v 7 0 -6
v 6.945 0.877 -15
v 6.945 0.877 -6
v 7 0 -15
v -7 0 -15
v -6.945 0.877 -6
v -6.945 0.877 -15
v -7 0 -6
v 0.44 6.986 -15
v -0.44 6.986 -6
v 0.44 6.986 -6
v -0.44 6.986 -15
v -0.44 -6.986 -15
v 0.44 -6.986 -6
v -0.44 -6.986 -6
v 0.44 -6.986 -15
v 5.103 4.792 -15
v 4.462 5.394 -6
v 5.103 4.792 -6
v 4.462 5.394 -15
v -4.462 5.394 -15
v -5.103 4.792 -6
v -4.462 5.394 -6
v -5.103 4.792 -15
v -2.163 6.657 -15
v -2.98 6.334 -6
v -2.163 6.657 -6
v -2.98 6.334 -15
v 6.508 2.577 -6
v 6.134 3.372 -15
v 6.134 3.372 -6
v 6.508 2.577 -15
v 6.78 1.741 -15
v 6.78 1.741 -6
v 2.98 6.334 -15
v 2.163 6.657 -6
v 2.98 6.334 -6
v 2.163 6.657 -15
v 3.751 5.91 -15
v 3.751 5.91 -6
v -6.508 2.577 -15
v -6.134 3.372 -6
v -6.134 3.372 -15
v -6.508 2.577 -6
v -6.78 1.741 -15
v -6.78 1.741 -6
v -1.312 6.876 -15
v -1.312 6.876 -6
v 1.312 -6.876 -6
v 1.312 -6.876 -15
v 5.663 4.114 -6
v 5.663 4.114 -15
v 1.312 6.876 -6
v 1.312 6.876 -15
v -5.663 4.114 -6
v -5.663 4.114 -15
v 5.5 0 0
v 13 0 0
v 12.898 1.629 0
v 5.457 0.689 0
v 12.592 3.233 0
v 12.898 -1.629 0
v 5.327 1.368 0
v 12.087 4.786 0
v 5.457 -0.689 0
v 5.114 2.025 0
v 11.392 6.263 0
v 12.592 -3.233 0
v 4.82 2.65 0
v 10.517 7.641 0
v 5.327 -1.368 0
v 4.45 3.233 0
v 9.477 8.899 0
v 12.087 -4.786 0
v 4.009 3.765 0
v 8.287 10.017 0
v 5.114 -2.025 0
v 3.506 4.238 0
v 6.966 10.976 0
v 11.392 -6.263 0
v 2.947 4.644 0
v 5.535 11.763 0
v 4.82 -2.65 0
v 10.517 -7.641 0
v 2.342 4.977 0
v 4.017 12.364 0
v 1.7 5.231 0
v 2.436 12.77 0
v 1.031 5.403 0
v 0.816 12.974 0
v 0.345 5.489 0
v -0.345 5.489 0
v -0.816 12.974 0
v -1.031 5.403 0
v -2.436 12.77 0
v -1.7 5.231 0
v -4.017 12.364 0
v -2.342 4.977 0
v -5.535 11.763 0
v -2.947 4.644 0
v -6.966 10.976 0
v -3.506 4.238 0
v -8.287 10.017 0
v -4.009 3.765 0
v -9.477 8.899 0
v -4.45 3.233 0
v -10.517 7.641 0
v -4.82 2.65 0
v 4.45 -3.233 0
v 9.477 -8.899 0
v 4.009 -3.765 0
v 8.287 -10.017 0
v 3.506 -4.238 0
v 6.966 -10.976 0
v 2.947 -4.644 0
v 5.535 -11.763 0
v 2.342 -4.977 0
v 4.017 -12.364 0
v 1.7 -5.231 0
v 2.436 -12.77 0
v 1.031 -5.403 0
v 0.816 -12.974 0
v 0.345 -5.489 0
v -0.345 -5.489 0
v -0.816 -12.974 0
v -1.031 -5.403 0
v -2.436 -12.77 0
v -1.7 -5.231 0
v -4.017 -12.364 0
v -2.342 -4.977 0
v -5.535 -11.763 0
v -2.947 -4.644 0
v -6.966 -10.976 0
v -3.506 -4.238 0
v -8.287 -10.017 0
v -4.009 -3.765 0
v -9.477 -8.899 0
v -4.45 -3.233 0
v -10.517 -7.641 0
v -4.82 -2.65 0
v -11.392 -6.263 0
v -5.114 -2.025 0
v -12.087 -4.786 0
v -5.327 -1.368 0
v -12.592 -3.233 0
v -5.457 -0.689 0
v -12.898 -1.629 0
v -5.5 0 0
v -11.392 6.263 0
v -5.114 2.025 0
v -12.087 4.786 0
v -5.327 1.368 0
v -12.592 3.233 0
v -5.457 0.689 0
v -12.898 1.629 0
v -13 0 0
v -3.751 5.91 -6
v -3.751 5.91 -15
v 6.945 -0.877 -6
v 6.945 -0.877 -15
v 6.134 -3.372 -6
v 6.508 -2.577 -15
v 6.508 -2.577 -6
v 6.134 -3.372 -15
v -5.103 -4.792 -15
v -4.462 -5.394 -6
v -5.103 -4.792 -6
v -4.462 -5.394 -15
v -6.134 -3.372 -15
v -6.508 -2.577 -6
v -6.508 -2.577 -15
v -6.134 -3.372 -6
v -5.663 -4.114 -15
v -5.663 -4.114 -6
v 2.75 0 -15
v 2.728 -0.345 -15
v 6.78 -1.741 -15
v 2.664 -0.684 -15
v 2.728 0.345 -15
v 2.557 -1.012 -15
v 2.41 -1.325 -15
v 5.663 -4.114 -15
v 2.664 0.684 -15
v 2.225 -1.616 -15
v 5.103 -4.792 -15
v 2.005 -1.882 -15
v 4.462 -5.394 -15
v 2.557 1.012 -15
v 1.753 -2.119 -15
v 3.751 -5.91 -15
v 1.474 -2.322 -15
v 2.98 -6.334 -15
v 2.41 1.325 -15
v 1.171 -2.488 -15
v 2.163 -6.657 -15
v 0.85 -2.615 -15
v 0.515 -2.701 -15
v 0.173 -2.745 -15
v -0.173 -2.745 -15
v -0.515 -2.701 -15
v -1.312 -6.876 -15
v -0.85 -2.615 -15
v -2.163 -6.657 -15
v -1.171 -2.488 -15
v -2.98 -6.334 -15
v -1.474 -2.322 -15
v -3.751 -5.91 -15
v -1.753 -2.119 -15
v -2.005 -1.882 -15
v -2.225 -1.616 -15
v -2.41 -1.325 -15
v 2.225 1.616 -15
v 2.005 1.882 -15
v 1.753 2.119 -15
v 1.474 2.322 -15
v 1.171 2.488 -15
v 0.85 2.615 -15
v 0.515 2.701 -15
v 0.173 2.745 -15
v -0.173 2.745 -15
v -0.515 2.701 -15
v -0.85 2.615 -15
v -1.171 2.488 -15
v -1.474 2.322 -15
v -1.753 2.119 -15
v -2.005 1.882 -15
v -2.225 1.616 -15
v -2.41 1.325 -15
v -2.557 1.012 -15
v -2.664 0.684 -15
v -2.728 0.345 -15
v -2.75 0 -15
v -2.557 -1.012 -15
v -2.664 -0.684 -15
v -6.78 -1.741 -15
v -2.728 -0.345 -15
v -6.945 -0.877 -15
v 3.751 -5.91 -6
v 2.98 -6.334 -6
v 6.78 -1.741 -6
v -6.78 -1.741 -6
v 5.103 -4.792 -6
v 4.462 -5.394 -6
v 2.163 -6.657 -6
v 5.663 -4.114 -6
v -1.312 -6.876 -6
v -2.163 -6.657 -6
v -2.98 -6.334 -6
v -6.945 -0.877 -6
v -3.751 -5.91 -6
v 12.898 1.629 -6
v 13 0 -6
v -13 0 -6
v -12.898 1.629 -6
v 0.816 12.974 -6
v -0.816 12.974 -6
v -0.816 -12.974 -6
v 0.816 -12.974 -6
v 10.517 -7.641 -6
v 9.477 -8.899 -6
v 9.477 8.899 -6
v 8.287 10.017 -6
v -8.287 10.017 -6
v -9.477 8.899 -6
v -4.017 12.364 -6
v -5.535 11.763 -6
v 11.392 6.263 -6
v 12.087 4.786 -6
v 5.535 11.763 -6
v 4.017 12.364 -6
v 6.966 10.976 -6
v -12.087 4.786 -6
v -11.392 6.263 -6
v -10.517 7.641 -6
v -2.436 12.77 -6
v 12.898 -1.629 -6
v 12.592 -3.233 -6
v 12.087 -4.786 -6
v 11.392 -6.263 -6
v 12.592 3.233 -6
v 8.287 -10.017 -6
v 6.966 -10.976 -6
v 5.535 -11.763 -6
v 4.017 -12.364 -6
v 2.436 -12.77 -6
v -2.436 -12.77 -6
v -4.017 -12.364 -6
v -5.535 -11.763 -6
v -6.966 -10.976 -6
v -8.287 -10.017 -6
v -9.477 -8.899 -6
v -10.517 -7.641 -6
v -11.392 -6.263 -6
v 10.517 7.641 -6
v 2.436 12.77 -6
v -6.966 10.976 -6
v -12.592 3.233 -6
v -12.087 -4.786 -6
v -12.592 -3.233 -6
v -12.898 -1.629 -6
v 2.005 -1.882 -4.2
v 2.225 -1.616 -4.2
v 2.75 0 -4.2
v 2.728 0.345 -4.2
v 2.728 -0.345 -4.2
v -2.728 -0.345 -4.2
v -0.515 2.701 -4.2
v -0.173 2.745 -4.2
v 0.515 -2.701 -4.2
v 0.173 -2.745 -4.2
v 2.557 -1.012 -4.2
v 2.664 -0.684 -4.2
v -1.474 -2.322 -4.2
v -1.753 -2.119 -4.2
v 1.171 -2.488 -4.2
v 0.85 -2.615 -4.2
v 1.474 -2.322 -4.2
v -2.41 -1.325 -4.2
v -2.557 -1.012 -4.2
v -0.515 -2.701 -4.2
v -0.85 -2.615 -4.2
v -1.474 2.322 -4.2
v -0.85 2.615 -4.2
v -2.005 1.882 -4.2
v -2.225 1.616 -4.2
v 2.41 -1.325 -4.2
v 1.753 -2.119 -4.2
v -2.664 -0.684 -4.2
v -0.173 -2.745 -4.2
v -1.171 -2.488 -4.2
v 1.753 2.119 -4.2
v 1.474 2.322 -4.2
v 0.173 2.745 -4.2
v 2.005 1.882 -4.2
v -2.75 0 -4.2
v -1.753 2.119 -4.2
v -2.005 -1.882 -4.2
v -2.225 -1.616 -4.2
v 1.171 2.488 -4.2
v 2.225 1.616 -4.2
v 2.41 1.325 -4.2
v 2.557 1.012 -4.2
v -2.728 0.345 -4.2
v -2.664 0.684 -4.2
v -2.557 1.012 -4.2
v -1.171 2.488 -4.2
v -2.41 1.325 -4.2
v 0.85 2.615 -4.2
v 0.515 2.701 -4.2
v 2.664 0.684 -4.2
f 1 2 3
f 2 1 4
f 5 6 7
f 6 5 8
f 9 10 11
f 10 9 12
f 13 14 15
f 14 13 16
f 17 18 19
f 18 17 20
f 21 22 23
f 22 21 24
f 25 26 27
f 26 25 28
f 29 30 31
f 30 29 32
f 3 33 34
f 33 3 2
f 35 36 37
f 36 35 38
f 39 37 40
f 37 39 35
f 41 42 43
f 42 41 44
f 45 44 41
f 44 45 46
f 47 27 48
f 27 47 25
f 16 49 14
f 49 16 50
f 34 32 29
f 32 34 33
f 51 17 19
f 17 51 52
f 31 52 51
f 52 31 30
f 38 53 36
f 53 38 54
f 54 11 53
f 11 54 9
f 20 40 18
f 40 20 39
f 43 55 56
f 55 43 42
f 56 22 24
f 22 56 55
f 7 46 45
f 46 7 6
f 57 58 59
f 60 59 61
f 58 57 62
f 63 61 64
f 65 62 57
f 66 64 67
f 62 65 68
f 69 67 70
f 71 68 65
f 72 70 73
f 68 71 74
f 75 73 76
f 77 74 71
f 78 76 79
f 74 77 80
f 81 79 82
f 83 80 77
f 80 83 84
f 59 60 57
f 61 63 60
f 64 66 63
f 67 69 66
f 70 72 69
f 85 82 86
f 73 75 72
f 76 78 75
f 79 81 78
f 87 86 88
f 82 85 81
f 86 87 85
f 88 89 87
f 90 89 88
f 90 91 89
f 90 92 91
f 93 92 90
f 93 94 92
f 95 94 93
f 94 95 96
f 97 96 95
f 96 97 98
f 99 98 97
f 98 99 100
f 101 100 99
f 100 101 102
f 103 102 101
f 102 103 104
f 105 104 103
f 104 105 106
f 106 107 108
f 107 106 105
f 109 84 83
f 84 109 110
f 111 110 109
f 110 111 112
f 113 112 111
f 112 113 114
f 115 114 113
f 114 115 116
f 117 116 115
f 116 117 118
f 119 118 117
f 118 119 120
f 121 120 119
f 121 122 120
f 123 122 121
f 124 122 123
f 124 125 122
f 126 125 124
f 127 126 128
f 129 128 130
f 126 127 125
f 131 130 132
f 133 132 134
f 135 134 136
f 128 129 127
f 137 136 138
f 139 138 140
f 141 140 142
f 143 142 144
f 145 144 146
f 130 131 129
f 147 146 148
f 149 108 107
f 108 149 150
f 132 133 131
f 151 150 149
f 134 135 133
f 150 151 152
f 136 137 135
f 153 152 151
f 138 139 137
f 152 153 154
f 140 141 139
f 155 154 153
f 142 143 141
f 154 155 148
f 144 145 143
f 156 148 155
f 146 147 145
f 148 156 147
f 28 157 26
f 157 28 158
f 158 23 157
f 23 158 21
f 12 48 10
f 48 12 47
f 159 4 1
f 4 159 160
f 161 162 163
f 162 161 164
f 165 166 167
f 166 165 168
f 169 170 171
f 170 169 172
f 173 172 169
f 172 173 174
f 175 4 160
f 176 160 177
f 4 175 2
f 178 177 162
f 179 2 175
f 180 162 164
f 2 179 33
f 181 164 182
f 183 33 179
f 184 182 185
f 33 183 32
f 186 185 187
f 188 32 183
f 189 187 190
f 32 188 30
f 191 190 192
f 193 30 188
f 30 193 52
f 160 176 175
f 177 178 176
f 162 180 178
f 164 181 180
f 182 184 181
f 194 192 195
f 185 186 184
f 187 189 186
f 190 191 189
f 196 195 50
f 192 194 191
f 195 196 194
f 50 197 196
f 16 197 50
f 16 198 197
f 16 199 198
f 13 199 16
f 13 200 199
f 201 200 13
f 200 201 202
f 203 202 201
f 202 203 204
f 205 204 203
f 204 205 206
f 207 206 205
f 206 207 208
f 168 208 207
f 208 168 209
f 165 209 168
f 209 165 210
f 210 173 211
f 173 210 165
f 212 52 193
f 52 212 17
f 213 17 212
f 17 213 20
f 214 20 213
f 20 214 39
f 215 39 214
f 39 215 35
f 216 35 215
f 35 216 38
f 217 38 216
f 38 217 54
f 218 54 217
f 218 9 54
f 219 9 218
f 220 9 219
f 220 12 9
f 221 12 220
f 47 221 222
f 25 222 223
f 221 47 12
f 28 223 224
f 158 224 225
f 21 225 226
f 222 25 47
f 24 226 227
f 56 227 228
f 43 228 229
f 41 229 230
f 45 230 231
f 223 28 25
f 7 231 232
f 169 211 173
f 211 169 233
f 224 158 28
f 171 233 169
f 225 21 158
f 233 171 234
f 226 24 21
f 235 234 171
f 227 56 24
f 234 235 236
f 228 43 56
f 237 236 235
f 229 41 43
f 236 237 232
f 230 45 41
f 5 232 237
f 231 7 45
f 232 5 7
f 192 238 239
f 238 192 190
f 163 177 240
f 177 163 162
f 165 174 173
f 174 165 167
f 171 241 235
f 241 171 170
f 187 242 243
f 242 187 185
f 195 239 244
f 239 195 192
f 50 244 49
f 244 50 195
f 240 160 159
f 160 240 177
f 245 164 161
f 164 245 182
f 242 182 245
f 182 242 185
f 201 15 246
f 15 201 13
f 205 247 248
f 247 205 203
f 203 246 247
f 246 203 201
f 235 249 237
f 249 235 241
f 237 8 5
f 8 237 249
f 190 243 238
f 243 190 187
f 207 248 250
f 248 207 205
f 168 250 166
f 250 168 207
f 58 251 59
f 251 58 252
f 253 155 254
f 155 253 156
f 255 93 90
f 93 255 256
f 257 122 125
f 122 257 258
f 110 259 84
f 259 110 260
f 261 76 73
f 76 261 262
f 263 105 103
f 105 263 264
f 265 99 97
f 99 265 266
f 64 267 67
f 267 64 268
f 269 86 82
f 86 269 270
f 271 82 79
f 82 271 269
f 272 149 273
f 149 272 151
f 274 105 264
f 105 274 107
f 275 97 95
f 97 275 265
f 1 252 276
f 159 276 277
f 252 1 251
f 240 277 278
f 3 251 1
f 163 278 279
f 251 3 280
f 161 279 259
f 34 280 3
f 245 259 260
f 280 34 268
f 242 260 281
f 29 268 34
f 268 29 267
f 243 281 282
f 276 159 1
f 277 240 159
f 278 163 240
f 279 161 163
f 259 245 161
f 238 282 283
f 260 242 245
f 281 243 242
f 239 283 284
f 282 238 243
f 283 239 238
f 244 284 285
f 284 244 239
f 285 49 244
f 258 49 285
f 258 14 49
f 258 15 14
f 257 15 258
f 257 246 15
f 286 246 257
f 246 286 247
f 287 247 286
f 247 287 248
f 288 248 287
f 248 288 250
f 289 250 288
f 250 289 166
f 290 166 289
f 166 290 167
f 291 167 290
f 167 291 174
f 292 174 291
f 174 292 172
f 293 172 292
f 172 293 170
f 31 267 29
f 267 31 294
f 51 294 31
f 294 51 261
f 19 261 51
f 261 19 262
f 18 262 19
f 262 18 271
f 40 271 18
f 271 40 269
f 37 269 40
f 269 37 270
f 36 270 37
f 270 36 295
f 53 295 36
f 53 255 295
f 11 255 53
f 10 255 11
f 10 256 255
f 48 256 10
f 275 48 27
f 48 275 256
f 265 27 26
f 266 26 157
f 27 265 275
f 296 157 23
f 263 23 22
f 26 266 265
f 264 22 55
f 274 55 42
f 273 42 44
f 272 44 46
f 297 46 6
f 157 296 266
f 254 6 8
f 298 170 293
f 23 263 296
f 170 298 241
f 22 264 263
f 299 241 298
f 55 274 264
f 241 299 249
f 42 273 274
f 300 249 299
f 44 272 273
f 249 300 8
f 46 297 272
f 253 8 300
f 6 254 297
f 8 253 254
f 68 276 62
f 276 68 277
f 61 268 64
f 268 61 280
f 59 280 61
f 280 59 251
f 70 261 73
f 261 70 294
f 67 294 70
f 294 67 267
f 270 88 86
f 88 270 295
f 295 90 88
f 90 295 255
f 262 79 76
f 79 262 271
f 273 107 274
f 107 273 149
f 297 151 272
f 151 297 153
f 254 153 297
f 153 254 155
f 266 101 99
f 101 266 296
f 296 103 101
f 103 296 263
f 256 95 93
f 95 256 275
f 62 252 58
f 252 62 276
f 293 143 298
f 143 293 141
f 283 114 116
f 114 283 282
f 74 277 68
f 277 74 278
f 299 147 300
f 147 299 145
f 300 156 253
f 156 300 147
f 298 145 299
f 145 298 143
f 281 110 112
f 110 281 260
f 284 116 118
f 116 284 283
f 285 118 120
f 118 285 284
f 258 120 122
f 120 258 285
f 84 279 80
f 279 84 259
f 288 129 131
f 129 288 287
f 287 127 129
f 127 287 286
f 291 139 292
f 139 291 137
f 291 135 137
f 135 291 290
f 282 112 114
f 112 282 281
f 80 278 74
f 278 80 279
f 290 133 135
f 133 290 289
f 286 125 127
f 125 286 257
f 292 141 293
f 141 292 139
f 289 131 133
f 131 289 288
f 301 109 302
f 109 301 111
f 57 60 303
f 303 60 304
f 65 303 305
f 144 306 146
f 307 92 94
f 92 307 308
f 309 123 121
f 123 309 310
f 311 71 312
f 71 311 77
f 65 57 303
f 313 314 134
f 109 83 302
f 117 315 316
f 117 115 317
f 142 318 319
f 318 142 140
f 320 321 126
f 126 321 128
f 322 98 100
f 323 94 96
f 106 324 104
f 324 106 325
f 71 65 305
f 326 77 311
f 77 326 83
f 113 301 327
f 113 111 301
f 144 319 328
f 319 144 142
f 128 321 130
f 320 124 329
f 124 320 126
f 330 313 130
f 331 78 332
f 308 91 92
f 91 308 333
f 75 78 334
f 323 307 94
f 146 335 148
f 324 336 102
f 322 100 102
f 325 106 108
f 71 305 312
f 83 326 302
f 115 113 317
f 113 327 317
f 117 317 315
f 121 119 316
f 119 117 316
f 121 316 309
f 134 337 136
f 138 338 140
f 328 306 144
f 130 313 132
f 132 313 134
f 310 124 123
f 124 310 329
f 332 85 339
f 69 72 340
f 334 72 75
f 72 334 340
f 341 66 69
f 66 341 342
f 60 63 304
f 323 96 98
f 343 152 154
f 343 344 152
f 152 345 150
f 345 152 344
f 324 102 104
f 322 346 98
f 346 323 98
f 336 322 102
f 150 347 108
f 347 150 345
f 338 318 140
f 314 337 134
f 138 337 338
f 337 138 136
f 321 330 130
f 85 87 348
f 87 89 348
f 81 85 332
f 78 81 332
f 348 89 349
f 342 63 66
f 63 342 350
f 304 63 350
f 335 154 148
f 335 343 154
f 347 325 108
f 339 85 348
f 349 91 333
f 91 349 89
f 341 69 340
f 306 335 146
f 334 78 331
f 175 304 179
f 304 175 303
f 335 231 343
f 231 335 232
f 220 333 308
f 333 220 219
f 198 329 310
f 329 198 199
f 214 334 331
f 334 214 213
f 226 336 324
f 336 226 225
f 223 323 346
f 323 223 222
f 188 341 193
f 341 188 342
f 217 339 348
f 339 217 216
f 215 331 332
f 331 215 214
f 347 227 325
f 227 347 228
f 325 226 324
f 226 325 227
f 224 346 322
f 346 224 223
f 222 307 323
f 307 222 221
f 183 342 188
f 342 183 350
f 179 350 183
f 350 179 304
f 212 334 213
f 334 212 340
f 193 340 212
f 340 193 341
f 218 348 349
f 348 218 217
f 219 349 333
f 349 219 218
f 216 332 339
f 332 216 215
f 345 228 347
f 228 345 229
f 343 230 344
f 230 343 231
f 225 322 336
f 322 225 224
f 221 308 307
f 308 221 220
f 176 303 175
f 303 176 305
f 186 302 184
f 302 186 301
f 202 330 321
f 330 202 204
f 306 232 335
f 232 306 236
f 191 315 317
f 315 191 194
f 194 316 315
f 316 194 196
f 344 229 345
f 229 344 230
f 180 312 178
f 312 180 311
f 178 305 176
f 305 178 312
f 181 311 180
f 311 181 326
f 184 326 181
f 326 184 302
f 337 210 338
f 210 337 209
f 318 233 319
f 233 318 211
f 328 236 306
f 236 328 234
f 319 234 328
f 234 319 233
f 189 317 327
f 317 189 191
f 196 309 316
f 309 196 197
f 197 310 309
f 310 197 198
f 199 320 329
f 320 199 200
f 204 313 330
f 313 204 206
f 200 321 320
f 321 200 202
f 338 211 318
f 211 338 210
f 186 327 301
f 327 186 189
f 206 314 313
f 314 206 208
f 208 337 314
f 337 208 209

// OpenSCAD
$fn = 50;


difference() {
	union() {
		translate(v = [0, 0, -15.0000000000]) {
			cylinder(h = 15, r = 7.0000000000);
		}
		translate(v = [0, 0, -6.0000000000]) {
			cylinder(h = 6, r = 13.0000000000);
		}
	}
	union() {
		translate(v = [0, 0, 0]) {
			rotate(a = [0, 0, 0]) {
				difference() {
					union() {
						#translate(v = [0, 0, -15.0000000000]) {
							cylinder(h = 15, r = 2.2500000000);
						}
						#translate(v = [0, 0, -4.2000000000]) {
							cylinder(h = 4.2000000000, r1 = 2.7500000000, r2 = 5.5000000000);
						}
						#translate(v = [0, 0, -15.0000000000]) {
							cylinder(h = 15, r = 2.7500000000);
						}
						#translate(v = [0, 0, -15.0000000000]) {
							cylinder(h = 15, r = 2.2500000000);
						}
					}
					union();
				}
			}
		}
	}
}
